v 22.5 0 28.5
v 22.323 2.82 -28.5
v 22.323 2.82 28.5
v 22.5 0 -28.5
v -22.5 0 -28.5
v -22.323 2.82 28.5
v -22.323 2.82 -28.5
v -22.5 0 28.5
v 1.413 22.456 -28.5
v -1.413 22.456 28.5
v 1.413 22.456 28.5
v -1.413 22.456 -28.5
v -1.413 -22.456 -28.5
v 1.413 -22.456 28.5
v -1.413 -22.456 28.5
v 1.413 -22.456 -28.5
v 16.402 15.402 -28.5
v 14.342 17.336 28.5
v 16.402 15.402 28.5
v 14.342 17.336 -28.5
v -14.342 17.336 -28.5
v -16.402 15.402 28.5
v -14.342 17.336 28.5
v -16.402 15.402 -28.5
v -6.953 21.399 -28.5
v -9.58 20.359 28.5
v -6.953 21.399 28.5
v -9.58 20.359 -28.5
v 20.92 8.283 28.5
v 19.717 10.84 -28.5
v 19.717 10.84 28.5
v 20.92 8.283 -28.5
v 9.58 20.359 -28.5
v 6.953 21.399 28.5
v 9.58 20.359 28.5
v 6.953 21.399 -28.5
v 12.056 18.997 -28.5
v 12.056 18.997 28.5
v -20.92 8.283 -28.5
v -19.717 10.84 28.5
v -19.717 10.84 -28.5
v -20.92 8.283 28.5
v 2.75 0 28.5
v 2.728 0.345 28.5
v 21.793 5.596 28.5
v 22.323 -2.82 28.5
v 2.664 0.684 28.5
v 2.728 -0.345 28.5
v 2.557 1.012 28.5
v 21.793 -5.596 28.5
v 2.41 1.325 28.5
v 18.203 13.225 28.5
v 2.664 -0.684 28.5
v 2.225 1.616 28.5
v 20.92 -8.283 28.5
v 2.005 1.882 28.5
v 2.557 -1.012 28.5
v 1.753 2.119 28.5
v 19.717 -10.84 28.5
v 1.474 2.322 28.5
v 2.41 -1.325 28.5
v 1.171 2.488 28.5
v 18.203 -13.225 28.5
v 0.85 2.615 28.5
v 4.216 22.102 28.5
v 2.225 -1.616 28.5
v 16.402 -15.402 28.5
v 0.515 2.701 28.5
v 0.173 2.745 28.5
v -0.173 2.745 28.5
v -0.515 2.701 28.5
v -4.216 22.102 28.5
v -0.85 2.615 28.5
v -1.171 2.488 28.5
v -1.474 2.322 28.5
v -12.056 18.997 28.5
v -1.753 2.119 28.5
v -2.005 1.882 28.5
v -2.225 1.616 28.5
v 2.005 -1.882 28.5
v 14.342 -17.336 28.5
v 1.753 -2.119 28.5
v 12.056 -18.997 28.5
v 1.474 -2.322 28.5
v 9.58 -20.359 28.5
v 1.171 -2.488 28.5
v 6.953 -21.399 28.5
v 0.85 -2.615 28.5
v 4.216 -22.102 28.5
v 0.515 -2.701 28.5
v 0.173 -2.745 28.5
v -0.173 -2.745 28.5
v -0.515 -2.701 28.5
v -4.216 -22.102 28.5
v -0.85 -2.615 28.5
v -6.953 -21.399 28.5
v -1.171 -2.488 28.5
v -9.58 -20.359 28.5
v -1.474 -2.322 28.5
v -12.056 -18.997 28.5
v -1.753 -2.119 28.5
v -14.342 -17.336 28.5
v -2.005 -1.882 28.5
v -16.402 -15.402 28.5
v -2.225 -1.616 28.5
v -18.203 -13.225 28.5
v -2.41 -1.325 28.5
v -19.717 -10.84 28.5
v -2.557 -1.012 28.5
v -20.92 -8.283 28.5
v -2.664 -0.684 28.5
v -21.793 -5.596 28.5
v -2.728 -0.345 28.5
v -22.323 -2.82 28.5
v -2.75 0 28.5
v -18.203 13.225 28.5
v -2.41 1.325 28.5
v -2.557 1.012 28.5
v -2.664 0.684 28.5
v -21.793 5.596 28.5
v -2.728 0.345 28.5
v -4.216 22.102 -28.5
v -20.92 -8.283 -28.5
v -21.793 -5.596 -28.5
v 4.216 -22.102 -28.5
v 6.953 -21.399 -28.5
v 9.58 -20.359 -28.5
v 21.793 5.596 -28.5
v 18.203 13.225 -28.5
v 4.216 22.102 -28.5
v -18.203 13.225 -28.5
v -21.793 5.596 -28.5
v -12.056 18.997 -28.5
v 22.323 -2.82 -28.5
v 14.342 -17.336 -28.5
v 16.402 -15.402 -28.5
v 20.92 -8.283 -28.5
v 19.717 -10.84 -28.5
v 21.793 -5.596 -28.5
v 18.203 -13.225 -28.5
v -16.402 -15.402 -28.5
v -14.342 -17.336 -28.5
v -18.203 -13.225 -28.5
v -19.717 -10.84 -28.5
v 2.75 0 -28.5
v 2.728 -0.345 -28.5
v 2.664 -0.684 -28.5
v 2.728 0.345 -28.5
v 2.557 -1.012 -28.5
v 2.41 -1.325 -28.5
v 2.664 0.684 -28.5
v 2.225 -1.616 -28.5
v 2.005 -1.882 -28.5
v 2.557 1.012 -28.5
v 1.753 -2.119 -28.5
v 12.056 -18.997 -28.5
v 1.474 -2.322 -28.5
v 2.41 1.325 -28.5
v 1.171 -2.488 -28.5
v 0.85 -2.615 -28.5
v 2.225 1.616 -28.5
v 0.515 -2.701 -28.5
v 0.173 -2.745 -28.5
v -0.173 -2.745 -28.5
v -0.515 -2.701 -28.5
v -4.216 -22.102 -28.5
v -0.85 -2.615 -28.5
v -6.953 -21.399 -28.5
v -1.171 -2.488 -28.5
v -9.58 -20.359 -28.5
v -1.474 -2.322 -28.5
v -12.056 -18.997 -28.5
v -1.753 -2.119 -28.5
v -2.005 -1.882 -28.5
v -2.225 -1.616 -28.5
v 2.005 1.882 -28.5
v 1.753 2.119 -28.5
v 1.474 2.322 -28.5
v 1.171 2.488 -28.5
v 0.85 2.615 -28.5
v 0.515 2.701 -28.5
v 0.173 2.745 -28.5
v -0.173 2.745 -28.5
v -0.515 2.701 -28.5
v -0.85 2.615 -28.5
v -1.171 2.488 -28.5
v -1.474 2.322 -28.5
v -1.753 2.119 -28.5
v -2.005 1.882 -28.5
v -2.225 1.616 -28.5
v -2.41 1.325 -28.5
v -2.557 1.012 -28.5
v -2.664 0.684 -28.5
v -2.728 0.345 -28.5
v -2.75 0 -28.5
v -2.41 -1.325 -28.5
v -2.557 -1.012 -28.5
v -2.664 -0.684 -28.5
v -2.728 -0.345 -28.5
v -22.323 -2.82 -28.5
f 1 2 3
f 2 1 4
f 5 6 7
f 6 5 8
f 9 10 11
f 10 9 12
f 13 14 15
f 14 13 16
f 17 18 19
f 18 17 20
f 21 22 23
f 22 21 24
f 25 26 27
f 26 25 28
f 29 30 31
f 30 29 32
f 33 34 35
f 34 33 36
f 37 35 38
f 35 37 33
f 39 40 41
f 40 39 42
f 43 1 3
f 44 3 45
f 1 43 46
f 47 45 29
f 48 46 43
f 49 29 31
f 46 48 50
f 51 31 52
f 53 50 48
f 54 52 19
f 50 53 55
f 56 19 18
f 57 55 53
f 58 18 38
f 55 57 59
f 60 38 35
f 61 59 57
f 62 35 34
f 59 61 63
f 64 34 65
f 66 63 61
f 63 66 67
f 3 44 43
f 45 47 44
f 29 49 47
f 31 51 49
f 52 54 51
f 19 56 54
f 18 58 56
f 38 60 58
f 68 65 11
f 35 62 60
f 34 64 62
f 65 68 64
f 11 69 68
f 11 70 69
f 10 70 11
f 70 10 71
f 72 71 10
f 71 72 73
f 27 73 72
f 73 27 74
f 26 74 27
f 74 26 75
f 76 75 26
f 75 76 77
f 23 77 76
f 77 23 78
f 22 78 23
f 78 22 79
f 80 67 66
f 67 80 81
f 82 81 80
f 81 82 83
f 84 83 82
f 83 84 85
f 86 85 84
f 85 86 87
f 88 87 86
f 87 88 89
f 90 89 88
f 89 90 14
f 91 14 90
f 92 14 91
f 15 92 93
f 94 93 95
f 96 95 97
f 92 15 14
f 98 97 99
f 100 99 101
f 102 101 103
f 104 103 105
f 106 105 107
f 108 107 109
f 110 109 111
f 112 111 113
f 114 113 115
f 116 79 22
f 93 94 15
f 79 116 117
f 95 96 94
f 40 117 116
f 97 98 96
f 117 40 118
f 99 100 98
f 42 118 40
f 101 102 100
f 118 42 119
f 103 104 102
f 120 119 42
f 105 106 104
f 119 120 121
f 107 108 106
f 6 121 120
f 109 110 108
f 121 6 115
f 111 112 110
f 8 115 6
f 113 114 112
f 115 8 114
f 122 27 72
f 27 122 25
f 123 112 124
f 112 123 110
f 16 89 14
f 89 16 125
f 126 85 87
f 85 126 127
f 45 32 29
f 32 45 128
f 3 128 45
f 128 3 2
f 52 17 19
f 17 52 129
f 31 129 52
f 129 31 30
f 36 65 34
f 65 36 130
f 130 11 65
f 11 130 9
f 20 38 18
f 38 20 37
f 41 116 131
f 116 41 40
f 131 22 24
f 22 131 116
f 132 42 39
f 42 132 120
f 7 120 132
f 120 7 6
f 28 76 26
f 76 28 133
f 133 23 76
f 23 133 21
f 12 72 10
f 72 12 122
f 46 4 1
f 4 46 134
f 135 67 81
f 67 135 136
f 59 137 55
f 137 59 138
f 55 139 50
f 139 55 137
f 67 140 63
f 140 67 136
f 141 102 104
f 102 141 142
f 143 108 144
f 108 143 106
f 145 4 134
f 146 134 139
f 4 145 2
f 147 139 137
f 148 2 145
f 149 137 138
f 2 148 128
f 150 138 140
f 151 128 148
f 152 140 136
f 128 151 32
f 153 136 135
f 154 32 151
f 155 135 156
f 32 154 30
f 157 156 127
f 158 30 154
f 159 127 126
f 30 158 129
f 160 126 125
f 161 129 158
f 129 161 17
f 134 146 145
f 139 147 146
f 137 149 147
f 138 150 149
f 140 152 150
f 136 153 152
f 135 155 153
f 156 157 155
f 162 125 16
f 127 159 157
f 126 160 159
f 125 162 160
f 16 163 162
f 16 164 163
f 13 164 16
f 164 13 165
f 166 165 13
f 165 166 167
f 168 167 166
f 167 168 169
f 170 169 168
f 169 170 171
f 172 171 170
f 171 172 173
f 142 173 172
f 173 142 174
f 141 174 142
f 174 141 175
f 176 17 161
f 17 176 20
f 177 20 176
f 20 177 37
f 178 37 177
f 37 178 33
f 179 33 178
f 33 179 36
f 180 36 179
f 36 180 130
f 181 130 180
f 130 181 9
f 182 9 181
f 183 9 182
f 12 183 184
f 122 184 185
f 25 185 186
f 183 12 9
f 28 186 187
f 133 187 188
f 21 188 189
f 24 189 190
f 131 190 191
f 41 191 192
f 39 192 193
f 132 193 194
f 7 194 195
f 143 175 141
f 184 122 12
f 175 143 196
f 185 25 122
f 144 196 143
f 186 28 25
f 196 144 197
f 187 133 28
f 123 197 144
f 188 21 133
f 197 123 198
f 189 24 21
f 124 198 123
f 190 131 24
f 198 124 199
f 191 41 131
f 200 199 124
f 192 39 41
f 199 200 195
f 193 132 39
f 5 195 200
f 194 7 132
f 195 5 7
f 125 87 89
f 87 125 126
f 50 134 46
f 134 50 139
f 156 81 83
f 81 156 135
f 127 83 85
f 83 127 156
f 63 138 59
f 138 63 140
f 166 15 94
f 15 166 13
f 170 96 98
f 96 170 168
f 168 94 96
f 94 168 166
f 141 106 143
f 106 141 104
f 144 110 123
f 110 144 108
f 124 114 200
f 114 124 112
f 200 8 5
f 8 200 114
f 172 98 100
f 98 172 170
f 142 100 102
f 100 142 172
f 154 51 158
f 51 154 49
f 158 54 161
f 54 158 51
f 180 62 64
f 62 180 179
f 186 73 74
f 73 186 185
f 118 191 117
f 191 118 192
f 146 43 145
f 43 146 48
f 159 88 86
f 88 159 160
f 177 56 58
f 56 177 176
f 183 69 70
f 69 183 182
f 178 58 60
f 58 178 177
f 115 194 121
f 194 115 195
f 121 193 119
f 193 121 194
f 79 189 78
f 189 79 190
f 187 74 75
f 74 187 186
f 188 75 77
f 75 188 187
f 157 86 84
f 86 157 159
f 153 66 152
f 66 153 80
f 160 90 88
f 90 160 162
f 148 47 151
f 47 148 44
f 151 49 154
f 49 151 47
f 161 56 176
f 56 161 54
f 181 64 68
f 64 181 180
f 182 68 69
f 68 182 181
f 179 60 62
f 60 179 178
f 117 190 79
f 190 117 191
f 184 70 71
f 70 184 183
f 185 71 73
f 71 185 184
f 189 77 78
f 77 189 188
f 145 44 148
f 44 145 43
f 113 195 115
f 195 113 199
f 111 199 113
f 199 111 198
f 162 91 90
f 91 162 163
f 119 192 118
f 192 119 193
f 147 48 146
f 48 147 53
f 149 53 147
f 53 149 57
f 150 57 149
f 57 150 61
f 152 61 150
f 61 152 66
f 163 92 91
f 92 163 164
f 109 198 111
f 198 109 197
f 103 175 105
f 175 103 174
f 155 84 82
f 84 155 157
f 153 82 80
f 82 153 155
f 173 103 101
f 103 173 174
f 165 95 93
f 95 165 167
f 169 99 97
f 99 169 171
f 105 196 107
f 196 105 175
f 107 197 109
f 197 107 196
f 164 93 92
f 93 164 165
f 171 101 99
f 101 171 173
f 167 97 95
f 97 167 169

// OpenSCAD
$fn = 50;


difference() {
	union() {
		translate(v = [0, 0, -28.5000000000]) {
			cylinder(h = 57, r = 22.5000000000);
		}
	}
	union() {
		translate(v = [0, 0, -100.0000000000]) {
			cylinder(h = 200, r = 2.7500000000);
		}
	}
}
